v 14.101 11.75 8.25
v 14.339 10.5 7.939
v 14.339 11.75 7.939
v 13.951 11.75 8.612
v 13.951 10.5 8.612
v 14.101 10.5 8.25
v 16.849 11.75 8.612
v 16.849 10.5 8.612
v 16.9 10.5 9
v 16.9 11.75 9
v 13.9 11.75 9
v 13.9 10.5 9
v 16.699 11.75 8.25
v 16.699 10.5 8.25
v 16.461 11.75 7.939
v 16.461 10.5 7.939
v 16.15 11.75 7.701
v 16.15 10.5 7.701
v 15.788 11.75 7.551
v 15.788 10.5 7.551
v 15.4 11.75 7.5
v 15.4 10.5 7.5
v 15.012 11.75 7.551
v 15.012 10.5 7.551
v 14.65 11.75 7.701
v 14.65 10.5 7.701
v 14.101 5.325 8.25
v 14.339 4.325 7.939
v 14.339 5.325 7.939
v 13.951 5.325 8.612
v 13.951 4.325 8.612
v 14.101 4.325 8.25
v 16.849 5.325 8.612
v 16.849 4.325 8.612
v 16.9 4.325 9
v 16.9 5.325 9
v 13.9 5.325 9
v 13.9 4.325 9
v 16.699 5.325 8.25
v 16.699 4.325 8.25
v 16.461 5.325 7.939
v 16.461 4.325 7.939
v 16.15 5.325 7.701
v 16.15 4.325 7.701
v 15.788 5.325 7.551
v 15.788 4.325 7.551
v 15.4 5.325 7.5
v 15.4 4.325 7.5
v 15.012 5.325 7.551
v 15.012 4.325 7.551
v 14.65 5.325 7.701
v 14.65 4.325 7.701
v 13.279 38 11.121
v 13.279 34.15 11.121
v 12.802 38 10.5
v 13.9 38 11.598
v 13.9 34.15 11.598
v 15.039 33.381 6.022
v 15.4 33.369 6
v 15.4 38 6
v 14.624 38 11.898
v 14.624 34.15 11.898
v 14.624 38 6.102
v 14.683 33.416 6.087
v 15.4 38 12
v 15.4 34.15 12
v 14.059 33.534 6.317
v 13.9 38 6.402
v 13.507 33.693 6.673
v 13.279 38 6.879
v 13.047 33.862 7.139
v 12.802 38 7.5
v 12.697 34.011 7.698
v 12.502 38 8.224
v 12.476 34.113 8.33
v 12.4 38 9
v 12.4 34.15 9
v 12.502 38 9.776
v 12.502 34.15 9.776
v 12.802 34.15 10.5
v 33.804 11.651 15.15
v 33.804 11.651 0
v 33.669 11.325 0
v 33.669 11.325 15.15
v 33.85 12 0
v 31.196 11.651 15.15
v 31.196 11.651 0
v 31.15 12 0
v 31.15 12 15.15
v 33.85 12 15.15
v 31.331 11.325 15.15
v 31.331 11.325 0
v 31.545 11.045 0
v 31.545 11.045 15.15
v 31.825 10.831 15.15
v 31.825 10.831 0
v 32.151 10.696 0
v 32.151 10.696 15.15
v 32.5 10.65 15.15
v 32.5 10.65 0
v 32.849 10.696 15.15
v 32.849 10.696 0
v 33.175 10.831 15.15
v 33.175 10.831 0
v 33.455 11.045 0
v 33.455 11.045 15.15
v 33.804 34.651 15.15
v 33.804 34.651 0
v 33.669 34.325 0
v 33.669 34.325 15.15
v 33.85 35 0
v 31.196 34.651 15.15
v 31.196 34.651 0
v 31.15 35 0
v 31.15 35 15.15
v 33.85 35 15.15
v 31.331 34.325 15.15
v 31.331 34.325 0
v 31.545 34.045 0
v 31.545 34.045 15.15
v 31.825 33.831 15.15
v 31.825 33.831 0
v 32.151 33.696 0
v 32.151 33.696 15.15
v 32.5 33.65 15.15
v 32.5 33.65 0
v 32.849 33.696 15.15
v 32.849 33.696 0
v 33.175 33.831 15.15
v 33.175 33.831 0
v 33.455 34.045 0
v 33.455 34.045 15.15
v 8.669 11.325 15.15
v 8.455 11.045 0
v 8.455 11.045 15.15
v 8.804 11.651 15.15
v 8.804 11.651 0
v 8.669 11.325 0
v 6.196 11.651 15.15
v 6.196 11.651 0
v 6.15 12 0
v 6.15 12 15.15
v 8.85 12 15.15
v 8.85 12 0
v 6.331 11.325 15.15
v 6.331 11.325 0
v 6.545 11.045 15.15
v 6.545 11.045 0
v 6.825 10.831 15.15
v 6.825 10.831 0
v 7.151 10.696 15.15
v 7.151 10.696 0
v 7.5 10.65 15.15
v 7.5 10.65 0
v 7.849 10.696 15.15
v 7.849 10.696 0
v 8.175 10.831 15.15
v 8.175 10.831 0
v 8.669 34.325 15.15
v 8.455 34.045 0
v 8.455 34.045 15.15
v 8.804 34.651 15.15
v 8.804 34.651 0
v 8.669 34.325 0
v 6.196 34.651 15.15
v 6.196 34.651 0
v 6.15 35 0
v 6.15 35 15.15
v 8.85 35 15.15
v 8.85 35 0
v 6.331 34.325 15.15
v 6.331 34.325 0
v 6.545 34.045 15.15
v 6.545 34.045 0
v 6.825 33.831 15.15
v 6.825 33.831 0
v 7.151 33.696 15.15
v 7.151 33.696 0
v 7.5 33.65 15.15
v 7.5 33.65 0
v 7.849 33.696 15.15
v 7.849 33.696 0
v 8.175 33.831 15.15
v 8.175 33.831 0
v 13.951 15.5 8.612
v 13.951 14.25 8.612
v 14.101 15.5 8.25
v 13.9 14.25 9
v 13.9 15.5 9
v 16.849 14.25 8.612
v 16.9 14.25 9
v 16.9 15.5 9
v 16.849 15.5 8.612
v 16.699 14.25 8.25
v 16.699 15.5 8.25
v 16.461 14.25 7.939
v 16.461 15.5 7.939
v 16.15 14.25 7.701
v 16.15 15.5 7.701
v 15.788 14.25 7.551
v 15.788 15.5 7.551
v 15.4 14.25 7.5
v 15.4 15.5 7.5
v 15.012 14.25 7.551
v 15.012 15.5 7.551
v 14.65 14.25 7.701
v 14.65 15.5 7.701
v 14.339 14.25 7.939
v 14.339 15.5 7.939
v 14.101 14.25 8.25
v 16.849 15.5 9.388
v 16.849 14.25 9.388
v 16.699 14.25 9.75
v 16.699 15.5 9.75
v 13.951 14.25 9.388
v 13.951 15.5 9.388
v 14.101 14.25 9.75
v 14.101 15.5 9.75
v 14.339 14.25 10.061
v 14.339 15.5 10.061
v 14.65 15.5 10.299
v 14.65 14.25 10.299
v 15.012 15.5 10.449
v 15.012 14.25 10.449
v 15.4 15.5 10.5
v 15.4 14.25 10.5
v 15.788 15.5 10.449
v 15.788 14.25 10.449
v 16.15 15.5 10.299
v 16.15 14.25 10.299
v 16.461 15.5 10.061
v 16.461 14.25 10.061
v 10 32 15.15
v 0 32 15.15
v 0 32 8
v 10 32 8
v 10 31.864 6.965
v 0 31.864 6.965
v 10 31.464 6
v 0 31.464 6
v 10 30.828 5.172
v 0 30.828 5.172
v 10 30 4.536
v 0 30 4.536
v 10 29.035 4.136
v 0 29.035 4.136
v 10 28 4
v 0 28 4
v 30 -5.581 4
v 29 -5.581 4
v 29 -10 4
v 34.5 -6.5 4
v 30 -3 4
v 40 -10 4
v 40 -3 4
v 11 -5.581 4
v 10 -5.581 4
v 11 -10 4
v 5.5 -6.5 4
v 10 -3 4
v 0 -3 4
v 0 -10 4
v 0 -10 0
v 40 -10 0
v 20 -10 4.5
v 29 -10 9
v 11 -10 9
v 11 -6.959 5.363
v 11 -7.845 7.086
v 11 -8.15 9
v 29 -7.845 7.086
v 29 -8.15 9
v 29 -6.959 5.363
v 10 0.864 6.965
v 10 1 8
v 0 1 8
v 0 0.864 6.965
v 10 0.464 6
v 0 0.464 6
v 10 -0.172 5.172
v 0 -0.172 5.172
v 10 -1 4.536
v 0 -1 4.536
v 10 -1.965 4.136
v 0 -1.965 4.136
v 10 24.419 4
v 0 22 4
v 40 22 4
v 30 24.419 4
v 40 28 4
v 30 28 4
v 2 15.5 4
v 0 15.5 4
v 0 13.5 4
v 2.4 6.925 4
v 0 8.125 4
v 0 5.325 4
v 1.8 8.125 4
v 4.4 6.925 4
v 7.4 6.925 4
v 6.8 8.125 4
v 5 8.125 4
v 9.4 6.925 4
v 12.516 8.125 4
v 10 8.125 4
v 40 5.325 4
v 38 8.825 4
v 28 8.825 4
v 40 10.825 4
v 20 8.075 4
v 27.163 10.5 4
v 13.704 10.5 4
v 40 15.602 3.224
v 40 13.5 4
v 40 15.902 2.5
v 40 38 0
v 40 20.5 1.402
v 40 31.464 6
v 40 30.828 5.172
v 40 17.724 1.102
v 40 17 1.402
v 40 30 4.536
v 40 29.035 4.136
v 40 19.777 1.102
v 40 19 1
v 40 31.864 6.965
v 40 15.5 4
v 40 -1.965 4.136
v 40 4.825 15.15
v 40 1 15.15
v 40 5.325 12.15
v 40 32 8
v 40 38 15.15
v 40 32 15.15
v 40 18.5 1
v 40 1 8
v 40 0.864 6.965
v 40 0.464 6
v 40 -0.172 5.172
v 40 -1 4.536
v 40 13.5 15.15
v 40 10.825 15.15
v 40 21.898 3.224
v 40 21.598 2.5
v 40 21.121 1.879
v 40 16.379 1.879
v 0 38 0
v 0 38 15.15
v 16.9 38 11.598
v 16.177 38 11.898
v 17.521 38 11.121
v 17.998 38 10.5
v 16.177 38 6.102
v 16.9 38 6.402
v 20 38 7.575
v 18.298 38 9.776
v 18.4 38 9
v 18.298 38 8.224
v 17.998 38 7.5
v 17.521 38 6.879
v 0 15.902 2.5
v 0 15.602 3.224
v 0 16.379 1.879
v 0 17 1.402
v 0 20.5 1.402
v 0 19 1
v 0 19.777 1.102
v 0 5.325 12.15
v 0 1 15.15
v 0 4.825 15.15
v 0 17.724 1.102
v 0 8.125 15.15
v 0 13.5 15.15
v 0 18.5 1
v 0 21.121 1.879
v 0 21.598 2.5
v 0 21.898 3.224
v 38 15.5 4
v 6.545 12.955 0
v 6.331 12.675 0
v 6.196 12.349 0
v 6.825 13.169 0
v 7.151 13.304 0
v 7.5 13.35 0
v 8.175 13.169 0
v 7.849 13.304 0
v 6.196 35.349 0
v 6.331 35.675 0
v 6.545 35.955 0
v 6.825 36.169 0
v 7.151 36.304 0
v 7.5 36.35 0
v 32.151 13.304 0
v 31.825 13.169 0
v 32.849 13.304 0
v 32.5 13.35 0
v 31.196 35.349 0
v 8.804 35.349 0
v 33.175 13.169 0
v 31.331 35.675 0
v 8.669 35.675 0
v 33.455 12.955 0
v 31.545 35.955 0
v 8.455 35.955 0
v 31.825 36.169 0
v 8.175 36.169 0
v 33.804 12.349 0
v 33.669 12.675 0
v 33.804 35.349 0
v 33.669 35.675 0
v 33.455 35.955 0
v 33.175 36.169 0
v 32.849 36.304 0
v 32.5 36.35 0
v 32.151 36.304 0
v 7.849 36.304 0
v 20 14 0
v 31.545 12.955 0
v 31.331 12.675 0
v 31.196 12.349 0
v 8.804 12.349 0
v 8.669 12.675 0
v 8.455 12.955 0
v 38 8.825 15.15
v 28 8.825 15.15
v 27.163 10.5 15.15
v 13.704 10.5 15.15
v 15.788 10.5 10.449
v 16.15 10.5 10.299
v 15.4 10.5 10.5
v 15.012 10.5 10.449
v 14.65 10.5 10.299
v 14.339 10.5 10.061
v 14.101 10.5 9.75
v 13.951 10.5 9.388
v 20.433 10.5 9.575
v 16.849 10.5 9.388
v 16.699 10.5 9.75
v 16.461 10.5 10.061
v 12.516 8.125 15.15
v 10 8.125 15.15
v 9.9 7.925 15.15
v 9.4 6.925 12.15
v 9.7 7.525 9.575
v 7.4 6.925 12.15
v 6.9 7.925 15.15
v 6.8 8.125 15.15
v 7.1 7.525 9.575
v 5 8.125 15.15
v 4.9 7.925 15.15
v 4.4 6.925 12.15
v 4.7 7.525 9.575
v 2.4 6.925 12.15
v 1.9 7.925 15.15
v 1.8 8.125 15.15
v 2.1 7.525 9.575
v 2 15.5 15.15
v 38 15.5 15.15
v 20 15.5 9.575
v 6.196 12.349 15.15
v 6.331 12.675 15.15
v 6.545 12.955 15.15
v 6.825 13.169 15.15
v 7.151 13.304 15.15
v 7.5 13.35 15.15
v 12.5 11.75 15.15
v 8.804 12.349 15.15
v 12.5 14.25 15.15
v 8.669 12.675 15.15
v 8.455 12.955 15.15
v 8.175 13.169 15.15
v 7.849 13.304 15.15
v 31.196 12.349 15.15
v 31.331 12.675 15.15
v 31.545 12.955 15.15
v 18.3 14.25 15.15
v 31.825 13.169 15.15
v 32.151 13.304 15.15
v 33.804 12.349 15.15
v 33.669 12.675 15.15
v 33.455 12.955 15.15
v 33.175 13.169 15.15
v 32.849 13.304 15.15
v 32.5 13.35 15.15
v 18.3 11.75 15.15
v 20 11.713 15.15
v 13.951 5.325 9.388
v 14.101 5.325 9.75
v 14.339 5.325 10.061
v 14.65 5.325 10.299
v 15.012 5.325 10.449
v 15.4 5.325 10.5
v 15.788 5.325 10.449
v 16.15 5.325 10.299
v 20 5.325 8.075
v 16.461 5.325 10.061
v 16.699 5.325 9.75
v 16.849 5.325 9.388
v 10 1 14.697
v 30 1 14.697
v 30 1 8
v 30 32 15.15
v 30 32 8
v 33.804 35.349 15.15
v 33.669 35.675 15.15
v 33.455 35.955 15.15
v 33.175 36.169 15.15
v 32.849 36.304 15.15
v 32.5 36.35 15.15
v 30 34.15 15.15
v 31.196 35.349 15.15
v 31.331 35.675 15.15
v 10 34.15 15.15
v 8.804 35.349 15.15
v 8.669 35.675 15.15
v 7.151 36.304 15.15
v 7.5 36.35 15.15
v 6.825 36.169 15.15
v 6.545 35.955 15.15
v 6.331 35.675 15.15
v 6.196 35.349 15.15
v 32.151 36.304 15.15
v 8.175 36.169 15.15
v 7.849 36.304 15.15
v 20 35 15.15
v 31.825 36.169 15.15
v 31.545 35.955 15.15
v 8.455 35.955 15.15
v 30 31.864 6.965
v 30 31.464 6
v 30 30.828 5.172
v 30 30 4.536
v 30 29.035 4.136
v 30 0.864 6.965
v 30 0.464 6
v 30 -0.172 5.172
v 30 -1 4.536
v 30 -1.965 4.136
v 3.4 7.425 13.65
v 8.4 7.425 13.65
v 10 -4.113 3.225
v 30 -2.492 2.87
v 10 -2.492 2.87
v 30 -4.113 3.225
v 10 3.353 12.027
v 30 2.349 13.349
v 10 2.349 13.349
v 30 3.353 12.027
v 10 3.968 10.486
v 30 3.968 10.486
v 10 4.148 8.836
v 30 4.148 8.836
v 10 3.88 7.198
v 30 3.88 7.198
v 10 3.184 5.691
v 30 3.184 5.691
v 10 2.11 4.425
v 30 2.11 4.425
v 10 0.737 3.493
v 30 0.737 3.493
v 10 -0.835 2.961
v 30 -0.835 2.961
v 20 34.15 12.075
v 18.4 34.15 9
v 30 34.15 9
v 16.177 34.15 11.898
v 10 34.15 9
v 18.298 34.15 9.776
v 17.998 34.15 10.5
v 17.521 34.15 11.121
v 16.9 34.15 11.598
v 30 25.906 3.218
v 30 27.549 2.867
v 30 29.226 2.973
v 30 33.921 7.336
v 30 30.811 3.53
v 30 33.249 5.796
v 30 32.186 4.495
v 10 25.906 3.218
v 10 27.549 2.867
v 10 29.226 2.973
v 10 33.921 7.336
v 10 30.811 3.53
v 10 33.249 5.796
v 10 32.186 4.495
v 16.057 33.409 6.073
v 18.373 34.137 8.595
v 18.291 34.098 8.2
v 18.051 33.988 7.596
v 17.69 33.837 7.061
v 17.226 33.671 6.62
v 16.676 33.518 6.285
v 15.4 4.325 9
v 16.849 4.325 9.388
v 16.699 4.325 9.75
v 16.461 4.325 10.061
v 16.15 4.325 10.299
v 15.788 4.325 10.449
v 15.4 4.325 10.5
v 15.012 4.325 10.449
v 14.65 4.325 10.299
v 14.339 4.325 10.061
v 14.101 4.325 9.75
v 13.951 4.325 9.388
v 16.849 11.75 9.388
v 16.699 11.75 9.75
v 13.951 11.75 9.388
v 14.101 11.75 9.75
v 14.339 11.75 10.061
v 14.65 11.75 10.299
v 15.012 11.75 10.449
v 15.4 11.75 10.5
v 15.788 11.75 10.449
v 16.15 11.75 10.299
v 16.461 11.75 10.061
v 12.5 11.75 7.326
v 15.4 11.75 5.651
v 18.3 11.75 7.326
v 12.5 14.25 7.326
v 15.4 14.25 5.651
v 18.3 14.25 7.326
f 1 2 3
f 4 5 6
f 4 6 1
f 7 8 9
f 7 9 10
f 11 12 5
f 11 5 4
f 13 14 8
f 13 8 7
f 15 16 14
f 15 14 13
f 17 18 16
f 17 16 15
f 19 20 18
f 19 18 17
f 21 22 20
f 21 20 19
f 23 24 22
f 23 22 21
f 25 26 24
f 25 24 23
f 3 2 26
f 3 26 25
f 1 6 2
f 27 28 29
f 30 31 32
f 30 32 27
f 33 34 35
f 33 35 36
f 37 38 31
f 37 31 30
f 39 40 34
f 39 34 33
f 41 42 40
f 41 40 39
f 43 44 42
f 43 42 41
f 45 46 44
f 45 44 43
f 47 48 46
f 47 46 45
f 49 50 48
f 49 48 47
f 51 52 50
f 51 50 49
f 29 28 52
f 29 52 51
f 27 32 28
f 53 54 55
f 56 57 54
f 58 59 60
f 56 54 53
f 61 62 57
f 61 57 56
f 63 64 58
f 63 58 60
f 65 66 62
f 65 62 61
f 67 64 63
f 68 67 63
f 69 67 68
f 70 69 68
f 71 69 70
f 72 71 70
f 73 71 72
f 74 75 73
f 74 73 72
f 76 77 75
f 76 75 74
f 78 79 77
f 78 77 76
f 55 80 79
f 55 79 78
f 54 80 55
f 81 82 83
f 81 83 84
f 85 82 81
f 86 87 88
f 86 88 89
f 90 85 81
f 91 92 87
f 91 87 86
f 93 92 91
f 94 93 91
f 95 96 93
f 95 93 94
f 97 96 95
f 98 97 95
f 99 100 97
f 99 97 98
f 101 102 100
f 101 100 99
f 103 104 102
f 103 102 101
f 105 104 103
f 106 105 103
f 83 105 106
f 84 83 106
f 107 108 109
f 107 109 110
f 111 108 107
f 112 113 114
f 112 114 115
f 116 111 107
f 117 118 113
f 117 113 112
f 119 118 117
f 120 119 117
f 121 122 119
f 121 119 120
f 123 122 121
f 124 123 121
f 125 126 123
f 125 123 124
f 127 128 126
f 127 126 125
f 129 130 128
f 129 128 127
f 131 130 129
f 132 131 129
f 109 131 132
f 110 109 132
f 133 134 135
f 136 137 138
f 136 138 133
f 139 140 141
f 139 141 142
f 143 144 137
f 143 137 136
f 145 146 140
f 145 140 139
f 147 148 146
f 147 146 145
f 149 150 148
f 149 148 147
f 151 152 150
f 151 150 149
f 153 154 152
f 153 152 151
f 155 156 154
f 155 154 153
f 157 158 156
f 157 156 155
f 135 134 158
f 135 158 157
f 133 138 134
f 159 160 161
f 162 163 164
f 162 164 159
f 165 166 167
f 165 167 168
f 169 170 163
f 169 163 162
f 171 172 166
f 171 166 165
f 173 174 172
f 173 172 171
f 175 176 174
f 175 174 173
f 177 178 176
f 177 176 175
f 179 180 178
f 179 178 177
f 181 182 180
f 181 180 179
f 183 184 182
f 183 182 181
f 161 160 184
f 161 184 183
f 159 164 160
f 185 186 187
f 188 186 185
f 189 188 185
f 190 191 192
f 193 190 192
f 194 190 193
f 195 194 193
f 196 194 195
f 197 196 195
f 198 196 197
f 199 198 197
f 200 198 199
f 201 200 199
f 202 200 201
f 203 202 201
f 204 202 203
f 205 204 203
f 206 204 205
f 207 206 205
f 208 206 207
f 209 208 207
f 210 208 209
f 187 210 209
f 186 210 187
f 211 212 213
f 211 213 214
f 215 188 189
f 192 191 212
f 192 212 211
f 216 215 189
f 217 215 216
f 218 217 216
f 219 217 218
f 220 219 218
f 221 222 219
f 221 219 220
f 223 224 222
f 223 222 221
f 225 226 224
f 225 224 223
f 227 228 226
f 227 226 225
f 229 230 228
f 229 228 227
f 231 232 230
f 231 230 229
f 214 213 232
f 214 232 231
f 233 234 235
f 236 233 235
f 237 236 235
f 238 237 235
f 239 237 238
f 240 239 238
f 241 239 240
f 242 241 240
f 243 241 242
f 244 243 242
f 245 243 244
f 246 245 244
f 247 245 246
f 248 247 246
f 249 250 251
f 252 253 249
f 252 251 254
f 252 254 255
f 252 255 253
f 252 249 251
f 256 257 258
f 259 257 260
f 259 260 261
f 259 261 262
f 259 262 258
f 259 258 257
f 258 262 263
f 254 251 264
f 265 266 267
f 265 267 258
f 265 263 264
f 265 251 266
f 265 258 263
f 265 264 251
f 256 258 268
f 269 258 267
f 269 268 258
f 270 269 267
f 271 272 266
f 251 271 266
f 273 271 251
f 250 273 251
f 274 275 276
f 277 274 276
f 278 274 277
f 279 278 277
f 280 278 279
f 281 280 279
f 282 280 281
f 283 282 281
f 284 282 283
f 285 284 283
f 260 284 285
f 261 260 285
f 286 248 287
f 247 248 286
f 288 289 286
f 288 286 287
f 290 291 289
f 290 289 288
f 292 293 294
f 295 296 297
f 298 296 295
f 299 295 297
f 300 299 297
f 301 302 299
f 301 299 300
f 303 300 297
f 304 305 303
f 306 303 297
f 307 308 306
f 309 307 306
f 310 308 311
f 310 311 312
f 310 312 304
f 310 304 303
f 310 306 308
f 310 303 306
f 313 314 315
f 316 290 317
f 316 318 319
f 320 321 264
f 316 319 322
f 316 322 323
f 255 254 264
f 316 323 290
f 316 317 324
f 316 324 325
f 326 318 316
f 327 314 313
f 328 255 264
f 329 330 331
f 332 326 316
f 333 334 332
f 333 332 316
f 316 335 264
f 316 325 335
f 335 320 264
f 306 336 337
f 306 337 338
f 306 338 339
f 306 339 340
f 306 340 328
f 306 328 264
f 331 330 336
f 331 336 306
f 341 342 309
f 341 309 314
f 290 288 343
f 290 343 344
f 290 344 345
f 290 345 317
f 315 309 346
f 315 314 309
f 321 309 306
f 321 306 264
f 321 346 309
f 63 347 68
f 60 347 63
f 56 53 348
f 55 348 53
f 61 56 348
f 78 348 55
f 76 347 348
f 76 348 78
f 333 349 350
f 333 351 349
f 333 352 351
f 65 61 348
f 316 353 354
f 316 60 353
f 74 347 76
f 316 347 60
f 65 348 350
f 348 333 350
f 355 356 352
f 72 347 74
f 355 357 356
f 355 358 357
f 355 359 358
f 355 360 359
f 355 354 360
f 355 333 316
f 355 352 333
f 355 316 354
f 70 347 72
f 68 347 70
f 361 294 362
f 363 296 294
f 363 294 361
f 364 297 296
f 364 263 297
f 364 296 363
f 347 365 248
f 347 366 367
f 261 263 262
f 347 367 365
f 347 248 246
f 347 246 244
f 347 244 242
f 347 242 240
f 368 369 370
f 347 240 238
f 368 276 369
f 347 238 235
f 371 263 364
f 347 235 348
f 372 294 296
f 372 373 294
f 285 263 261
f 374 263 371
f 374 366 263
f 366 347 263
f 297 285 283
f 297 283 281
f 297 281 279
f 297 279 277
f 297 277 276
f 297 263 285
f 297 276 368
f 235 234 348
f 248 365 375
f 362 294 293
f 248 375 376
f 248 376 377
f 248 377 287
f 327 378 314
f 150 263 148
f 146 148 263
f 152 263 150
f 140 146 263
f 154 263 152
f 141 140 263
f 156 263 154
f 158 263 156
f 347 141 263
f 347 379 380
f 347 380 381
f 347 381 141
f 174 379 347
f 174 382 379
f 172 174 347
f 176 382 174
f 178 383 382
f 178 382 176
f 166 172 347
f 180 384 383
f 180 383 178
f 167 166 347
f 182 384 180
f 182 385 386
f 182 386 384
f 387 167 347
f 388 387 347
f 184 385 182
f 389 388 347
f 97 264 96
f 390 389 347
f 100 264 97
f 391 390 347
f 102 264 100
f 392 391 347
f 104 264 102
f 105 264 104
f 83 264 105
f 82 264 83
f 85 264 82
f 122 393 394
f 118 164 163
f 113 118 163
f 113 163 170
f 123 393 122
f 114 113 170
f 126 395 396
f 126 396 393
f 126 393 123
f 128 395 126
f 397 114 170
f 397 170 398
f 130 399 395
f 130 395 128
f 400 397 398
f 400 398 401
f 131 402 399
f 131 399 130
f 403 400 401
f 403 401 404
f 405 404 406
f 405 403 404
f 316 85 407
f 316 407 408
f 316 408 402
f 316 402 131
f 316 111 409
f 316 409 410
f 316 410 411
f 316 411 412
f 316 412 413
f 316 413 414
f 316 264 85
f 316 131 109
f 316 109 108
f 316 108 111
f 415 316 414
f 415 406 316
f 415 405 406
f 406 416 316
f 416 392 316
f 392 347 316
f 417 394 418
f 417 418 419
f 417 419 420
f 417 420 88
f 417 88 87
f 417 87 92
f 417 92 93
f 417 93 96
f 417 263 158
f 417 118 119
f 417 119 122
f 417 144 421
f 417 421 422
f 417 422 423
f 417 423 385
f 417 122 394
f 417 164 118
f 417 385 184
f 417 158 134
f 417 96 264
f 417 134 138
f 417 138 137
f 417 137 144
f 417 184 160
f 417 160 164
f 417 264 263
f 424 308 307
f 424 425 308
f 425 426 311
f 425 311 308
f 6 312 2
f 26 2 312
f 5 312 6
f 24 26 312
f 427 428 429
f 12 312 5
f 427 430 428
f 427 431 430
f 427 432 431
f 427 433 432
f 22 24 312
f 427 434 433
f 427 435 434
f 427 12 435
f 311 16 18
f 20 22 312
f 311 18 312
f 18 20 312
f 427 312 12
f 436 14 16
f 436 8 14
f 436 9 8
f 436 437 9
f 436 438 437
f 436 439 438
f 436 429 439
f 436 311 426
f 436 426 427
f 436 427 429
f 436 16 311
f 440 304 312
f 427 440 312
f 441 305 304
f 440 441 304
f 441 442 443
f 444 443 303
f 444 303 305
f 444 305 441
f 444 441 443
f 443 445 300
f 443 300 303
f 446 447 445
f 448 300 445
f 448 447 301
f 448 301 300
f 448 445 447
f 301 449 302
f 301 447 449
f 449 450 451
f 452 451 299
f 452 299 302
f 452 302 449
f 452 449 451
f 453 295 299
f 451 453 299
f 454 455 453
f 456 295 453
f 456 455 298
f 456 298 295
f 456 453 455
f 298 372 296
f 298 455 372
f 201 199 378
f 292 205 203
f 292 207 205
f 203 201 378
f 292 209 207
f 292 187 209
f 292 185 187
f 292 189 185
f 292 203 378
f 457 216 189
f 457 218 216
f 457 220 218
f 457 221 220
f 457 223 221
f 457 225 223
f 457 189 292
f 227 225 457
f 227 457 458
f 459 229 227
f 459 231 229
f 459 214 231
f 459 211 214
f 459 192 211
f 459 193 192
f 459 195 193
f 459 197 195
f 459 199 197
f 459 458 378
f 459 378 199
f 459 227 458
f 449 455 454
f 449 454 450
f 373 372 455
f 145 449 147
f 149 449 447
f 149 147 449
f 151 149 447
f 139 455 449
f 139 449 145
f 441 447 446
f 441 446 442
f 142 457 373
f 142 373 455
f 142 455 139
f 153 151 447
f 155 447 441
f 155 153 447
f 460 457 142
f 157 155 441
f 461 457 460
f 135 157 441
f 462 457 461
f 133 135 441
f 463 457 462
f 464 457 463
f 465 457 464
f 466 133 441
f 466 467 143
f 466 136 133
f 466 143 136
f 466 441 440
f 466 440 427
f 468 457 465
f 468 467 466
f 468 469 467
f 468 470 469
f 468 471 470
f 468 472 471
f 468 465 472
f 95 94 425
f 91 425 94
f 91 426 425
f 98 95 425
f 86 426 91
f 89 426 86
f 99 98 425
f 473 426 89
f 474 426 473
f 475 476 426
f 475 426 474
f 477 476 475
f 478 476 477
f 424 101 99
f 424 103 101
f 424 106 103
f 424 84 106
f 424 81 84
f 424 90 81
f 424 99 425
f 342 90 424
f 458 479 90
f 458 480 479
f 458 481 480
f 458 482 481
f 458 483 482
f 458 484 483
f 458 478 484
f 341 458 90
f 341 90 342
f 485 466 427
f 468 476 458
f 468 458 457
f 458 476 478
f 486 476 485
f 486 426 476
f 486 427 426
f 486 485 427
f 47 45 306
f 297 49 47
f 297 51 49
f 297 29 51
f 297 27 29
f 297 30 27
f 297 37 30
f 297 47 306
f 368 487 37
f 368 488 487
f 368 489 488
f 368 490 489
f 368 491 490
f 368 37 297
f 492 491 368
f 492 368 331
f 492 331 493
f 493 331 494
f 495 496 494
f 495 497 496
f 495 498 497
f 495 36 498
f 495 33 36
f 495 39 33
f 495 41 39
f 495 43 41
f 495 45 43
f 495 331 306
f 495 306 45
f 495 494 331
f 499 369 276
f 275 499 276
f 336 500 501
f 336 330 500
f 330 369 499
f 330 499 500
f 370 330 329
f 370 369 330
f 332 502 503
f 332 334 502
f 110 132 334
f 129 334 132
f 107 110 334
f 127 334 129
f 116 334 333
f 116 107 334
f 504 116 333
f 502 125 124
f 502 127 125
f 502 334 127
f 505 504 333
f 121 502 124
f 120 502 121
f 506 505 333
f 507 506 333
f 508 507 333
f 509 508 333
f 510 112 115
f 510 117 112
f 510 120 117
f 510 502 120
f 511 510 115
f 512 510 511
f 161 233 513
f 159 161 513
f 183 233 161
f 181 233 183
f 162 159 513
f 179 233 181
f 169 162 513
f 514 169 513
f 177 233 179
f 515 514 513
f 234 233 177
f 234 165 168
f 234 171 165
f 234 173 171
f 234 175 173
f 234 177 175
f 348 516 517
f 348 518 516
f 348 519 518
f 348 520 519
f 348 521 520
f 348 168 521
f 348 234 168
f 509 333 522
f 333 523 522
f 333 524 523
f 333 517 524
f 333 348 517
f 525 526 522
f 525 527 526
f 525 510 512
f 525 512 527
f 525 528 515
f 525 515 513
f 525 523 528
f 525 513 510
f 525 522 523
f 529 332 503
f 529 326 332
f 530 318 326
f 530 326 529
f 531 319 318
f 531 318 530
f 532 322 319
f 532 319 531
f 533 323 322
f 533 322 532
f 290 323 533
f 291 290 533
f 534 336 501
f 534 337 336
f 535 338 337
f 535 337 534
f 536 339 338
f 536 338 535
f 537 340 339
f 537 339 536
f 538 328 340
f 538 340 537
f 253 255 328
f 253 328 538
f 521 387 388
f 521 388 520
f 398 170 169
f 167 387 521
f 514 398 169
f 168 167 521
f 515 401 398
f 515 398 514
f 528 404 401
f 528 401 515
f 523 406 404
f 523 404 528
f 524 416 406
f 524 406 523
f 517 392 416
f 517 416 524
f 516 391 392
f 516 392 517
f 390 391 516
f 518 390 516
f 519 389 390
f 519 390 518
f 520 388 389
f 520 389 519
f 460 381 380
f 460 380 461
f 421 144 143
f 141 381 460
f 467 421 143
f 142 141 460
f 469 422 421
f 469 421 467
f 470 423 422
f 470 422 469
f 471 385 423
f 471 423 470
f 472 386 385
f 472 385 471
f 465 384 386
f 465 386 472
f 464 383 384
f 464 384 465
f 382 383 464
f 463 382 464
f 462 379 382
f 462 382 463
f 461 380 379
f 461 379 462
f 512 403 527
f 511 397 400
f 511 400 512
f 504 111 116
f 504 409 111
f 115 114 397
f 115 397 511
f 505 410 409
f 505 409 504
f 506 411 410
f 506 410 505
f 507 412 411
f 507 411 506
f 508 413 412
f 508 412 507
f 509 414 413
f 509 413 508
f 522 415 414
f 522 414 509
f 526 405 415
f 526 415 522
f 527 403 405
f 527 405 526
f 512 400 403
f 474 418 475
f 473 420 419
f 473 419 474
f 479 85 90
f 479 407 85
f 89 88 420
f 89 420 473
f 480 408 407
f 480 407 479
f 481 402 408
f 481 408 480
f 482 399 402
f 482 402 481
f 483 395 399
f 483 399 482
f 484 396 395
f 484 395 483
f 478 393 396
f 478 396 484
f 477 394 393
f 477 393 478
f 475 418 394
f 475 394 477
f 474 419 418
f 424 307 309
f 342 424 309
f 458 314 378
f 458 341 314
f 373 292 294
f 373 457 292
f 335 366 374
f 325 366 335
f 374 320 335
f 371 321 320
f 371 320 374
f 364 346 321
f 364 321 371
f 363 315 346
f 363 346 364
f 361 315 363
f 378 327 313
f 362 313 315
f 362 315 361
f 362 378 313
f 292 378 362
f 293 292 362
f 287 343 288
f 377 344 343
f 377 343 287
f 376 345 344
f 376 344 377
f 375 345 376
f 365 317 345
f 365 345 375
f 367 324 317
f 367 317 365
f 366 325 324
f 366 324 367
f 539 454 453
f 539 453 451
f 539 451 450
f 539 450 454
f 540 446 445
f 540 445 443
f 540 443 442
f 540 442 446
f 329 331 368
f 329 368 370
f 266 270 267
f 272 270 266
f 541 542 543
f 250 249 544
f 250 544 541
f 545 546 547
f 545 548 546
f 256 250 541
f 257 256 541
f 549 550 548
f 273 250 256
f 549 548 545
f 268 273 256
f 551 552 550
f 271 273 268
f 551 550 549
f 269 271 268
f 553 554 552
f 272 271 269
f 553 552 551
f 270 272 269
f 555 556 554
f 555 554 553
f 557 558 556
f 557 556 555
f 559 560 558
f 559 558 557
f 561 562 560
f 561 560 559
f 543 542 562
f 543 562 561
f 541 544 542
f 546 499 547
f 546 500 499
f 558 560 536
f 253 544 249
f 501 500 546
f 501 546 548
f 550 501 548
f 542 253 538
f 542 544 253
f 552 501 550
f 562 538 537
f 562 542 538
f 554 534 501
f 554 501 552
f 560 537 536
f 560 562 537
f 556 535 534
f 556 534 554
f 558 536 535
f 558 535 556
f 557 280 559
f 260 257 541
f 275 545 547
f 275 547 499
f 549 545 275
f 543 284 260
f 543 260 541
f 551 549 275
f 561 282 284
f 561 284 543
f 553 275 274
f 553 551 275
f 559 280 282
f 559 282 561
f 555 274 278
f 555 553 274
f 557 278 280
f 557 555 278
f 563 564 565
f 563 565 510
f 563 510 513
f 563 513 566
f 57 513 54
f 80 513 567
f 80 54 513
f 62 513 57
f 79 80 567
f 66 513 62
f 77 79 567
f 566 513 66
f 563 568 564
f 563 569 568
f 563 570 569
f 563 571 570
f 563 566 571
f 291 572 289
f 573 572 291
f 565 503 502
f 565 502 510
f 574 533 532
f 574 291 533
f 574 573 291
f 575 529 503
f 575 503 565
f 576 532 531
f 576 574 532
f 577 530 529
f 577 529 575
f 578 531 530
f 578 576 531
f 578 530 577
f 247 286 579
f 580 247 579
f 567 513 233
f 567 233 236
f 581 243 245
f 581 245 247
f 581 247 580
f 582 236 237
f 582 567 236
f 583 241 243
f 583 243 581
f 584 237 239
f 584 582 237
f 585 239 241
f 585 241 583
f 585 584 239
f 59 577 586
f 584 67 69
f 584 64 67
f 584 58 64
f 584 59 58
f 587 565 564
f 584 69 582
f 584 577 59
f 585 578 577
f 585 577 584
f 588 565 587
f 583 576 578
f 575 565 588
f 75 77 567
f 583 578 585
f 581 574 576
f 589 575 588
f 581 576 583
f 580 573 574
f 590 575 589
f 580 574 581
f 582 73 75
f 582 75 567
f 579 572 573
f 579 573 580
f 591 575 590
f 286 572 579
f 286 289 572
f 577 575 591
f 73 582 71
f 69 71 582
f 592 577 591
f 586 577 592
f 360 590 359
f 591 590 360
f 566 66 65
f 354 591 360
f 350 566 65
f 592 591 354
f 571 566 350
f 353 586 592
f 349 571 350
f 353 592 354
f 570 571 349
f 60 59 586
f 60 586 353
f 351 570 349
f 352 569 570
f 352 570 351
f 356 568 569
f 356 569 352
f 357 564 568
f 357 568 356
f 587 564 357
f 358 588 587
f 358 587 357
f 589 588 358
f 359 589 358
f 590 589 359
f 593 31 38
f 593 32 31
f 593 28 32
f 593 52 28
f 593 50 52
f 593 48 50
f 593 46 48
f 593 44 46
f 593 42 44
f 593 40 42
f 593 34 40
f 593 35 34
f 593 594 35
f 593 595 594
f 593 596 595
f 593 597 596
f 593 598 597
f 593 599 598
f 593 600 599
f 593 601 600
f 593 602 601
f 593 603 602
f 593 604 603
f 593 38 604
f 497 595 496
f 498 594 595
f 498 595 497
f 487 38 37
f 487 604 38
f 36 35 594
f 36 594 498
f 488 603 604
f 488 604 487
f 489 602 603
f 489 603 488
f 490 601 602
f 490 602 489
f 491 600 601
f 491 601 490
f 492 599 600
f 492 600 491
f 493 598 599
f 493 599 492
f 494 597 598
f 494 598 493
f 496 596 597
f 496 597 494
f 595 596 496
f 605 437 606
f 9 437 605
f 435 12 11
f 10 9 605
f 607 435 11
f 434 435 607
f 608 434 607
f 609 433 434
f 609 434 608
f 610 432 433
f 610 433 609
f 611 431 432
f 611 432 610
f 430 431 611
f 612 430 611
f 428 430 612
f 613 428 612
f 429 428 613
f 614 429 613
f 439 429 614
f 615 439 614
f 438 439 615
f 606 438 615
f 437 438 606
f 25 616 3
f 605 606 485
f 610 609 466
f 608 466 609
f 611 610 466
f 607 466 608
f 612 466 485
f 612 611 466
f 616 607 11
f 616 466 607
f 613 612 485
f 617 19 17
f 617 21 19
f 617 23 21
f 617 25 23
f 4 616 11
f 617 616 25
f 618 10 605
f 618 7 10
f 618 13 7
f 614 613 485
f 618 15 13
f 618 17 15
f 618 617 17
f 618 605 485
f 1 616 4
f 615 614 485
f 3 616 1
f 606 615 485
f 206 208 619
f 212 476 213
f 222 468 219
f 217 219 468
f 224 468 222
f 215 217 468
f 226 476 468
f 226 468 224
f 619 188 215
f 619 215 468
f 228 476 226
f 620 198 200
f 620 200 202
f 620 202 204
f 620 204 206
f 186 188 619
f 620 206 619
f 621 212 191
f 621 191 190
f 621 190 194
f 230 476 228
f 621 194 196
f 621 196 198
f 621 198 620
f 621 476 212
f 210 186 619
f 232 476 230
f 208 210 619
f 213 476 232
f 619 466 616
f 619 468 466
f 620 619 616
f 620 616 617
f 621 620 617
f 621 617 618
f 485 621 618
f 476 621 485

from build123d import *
from OCP.BRepFilletAPI import BRepFilletAPI_MakeChamfer

# Parameters (mm, degrees)
SKETCH1_W                = 40
SKETCH1_H                = 48
BOSS_EXTRUDE1_DEPTH      = 4
BOSS_EXTRUDE2_DEPTH      = 11.15
BOSS_EXTRUDE2_DEPTH_BACK = 4
SKETCH5_W                = 40
SKETCH5_H                = 4.325
SKETCH5_W_2              = 18
SKETCH5_H_2              = 5
SKETCH5_H_3              = 6
FILLET1_R                = 4
SKETCH6_R                = 1.35
CUT_EXTRUDE4_DEPTH       = 58.214705278
CHAMFER2_SIZE            = 2
SKETCH7_W                = 40
SKETCH7_H                = 6.5
CUT_EXTRUDE5_DEPTH       = 3
FILLET2_R                = 3
CHAMFER3_SIZE            = 3
CHAMFER3_SIZE2           = 1
CHAMFER4_SIZE            = 3
CHAMFER4_SIZE2           = 0.5
CUT_EXTRUDE6_DEPTH       = 10
CUT_EXTRUDE6_DEPTH_BACK  = 10
CUT_EXTRUDE8_REACH       = 66.292
SKETCH12_R               = 3
SKETCH13_R               = 1.5
CUT_EXTRUDE10_DEPTH      = 11.175
CUT_EXTRUDE7_DEPTH       = 1.25
CUT_EXTRUDE7_DEPTH_BACK  = 1.25


with BuildPart() as part:
    # Sketch1 → Boss-Extrude1 (new body)
    with BuildSketch(Plane.XY):
        with Locations((20, 14)):
            Rectangle(SKETCH1_W, SKETCH1_H)
    extrude(amount=BOSS_EXTRUDE1_DEPTH)

    # Sketch5 → Boss-Extrude2 (add, two sides: drawn at the far end of the back side and taken through both)
    with BuildSketch(Plane.XY.offset(4).offset(-BOSS_EXTRUDE2_DEPTH_BACK)):
        Polygon((1.8, 8.125), (0, 8.125), (0, 15.5), (40, 15.5), (40, 8.825), (28, 8.825), (27.1625, 10.5), (13.70350416, 10.5), (12.51600416, 8.125), (10, 8.125), (9.4, 6.925), (7.4, 6.925), (6.8, 8.125), (5, 8.125), (4.4, 6.925), (2.4, 6.925), align=None)
        with Locations((20, 3.1625)):
            Rectangle(SKETCH5_W, SKETCH5_H)
        with Locations((20, -7.5)):
            Rectangle(SKETCH5_W_2, SKETCH5_H_2)
        with Locations((20, 35)):
            Rectangle(SKETCH5_W, SKETCH5_H_3)
    extrude(amount=BOSS_EXTRUDE2_DEPTH + BOSS_EXTRUDE2_DEPTH_BACK)

    # Fillet1
    fillet1_edges = [part.edges().sort_by_distance(p)[0] for p in [
        (20, 32, 4),
        (20, 1, 4),
    ]]
    fillet(fillet1_edges, radius=FILLET1_R)

    # Sketch6 → Cut-Extrude4 (cut, through all)
    with BuildSketch(Plane.XY.offset(15.15)):
        with Locations((7.5, 35)):
            Circle(SKETCH6_R)
        with Locations((7.5, 12)):
            Circle(SKETCH6_R)
        with Locations((32.5, 35)):
            Circle(SKETCH6_R)
        with Locations((32.5, 12)):
            Circle(SKETCH6_R)
    extrude(amount=-CUT_EXTRUDE4_DEPTH, mode=Mode.SUBTRACT)

    # Chamfer2
    chamfer2_edges = [part.edges().sort_by_distance(p)[0] for p in [
        (40, 8.825, 9.575),
        (0, 15.5, 9.575),
        (40, 15.5, 9.575),
    ]]
    chamfer(chamfer2_edges, length=CHAMFER2_SIZE)

    # Sketch7 → Cut-Extrude5 (cut)
    with BuildSketch(Plane.XY.offset(4)):
        with Locations((20, 18.75)):
            Rectangle(SKETCH7_W, SKETCH7_H)
    extrude(amount=-CUT_EXTRUDE5_DEPTH, mode=Mode.SUBTRACT)

    # Fillet2
    fillet2_edges = [part.edges().sort_by_distance(p)[0] for p in [
        (20, 15.5, 1),
        (20, 22, 1),
    ]]
    fillet(fillet2_edges, radius=FILLET2_R - 0.0001)  # a hair under: the kernel refuses the full size

    # Chamfer3: one chamfer whose edges measure the first distance from different faces: ONE call of the kernel's chamfer builder (chamfer() names one face for all edges)
    chamfer3_edges_1 = [part.edges().sort_by_distance(p)[0] for p in [
        (3.4, 6.925, 15.15),
    ]]
    chamfer3_side_1 = [part.faces().sort_by_distance(p)[0] for p in [
        (3.4, 6.925, 9.575),
    ]]
    chamfer3_edges_2 = [part.edges().sort_by_distance(p)[0] for p in [
        (8.4, 6.925, 15.15),
    ]]
    chamfer3_side_2 = [part.faces().sort_by_distance(p)[0] for p in [
        (8.4, 6.925, 9.575),
    ]]
    chamfer3 = BRepFilletAPI_MakeChamfer(part.part.solid().wrapped)
    for e in chamfer3_edges_1:
        chamfer3.Add(CHAMFER3_SIZE, CHAMFER3_SIZE2, e.wrapped, chamfer3_side_1[0].wrapped)  # the first distance lies on this face
    for e in chamfer3_edges_2:
        chamfer3.Add(CHAMFER3_SIZE, CHAMFER3_SIZE2, e.wrapped, chamfer3_side_2[0].wrapped)  # the first distance lies on this face
    add(Compound.cast(chamfer3.Shape()), mode=Mode.REPLACE)

    # Chamfer4
    chamfer4_edges = [part.edges().sort_by_distance(p)[0] for p in [
        (20, 5.325, 15.15),
    ]]
    chamfer4_side = [part.faces().sort_by_distance(p)[0] for p in [
        (20, 5.325, 9.575),
    ]]
    chamfer(chamfer4_edges, length=CHAMFER4_SIZE, length2=CHAMFER4_SIZE2, reference=chamfer4_side[0])

    # Sketch8 → Cut-Extrude6 (cut, two sides: drawn at the far end of the back side and taken through both)
    with BuildSketch(Plane(origin=(20, 0, 0), x_dir=(0, 0, -1), z_dir=(1, 0, 0)).offset(-CUT_EXTRUDE6_DEPTH_BACK)):
        with BuildLine():
            Line((-9, 34.15), (-18.856272107, 34.15))
            Line((-18.856272107, 34.15), (-18.856272107, 21.85))
            Line((-18.856272107, 21.85), (-9, 21.85))
            ThreePointArc((-9, 21.85), (-2.85, 28), (-9, 34.15))
        make_face()
        with BuildLine():
            Line((-18.856272107, -10.437196649), (-18.856272107, -3.158858698))
            Line((-18.856272107, -3.158858698), (-13.348706704, 2.348706704))
            ThreePointArc((-13.348706704, 2.348706704), (-3.318140875, 0.353503109), (-9, -8.15))
            Line((-9, -8.15), (-9, -10.437196649))
            Line((-9, -10.437196649), (-18.856272107, -10.437196649))
        make_face()
    extrude(amount=CUT_EXTRUDE6_DEPTH + CUT_EXTRUDE6_DEPTH_BACK, mode=Mode.SUBTRACT)

    # Cut-Extrude8: up to this face of the body (flat: up to its plane)
    cut_extrude8_end = Plane(part.part.faces().sort_by_distance((20, 15.5, 9.574944444))[0])
    # Sketch12 → Cut-Extrude8 (cut, up to the picked face)
    with BuildSketch(Plane(origin=(0, 38, 0), x_dir=(1, 0, 0), z_dir=(0, 1, 0)), mode=Mode.PRIVATE) as cut_extrude8_sk1:
        with Locations(Location((15.4, -9, 0), (0, 0, 270))):
            Circle(SKETCH12_R)
    cut_extrude8_tool1 = split(extrude(cut_extrude8_sk1.sketch, amount=-CUT_EXTRUDE8_REACH, mode=Mode.PRIVATE), bisect_by=cut_extrude8_end, keep=Keep.BOTH, mode=Mode.PRIVATE)
    add(cut_extrude8_tool1.solids().sort_by(Axis((15.4, 38, 9), (0, -1, 0)))[0], mode=Mode.SUBTRACT)

    # Sketch13 → Cut-Extrude10 (cut)
    with BuildSketch(Plane(origin=(0, 15.5, 0), x_dir=(1, 0, 0), z_dir=(0, 1, 0))):
        with Locations(Location((15.4, -9, 0), (0, 0, 180))):
            Circle(SKETCH13_R)
    extrude(amount=-CUT_EXTRUDE10_DEPTH, mode=Mode.SUBTRACT)

    # Sketch9 → Cut-Extrude7 (cut, two sides: drawn at the far end of the back side and taken through both)
    with BuildSketch(Plane.XZ.offset(-13).offset(-CUT_EXTRUDE7_DEPTH_BACK)):
        Polygon((12.5, 16.815347994), (18.3, 16.815347994), (18.3, 7.325684219), (15.4, 5.651368439), (12.5, 7.325684219), align=None)
    extrude(amount=CUT_EXTRUDE7_DEPTH + CUT_EXTRUDE7_DEPTH_BACK, mode=Mode.SUBTRACT)


solid = part.part
